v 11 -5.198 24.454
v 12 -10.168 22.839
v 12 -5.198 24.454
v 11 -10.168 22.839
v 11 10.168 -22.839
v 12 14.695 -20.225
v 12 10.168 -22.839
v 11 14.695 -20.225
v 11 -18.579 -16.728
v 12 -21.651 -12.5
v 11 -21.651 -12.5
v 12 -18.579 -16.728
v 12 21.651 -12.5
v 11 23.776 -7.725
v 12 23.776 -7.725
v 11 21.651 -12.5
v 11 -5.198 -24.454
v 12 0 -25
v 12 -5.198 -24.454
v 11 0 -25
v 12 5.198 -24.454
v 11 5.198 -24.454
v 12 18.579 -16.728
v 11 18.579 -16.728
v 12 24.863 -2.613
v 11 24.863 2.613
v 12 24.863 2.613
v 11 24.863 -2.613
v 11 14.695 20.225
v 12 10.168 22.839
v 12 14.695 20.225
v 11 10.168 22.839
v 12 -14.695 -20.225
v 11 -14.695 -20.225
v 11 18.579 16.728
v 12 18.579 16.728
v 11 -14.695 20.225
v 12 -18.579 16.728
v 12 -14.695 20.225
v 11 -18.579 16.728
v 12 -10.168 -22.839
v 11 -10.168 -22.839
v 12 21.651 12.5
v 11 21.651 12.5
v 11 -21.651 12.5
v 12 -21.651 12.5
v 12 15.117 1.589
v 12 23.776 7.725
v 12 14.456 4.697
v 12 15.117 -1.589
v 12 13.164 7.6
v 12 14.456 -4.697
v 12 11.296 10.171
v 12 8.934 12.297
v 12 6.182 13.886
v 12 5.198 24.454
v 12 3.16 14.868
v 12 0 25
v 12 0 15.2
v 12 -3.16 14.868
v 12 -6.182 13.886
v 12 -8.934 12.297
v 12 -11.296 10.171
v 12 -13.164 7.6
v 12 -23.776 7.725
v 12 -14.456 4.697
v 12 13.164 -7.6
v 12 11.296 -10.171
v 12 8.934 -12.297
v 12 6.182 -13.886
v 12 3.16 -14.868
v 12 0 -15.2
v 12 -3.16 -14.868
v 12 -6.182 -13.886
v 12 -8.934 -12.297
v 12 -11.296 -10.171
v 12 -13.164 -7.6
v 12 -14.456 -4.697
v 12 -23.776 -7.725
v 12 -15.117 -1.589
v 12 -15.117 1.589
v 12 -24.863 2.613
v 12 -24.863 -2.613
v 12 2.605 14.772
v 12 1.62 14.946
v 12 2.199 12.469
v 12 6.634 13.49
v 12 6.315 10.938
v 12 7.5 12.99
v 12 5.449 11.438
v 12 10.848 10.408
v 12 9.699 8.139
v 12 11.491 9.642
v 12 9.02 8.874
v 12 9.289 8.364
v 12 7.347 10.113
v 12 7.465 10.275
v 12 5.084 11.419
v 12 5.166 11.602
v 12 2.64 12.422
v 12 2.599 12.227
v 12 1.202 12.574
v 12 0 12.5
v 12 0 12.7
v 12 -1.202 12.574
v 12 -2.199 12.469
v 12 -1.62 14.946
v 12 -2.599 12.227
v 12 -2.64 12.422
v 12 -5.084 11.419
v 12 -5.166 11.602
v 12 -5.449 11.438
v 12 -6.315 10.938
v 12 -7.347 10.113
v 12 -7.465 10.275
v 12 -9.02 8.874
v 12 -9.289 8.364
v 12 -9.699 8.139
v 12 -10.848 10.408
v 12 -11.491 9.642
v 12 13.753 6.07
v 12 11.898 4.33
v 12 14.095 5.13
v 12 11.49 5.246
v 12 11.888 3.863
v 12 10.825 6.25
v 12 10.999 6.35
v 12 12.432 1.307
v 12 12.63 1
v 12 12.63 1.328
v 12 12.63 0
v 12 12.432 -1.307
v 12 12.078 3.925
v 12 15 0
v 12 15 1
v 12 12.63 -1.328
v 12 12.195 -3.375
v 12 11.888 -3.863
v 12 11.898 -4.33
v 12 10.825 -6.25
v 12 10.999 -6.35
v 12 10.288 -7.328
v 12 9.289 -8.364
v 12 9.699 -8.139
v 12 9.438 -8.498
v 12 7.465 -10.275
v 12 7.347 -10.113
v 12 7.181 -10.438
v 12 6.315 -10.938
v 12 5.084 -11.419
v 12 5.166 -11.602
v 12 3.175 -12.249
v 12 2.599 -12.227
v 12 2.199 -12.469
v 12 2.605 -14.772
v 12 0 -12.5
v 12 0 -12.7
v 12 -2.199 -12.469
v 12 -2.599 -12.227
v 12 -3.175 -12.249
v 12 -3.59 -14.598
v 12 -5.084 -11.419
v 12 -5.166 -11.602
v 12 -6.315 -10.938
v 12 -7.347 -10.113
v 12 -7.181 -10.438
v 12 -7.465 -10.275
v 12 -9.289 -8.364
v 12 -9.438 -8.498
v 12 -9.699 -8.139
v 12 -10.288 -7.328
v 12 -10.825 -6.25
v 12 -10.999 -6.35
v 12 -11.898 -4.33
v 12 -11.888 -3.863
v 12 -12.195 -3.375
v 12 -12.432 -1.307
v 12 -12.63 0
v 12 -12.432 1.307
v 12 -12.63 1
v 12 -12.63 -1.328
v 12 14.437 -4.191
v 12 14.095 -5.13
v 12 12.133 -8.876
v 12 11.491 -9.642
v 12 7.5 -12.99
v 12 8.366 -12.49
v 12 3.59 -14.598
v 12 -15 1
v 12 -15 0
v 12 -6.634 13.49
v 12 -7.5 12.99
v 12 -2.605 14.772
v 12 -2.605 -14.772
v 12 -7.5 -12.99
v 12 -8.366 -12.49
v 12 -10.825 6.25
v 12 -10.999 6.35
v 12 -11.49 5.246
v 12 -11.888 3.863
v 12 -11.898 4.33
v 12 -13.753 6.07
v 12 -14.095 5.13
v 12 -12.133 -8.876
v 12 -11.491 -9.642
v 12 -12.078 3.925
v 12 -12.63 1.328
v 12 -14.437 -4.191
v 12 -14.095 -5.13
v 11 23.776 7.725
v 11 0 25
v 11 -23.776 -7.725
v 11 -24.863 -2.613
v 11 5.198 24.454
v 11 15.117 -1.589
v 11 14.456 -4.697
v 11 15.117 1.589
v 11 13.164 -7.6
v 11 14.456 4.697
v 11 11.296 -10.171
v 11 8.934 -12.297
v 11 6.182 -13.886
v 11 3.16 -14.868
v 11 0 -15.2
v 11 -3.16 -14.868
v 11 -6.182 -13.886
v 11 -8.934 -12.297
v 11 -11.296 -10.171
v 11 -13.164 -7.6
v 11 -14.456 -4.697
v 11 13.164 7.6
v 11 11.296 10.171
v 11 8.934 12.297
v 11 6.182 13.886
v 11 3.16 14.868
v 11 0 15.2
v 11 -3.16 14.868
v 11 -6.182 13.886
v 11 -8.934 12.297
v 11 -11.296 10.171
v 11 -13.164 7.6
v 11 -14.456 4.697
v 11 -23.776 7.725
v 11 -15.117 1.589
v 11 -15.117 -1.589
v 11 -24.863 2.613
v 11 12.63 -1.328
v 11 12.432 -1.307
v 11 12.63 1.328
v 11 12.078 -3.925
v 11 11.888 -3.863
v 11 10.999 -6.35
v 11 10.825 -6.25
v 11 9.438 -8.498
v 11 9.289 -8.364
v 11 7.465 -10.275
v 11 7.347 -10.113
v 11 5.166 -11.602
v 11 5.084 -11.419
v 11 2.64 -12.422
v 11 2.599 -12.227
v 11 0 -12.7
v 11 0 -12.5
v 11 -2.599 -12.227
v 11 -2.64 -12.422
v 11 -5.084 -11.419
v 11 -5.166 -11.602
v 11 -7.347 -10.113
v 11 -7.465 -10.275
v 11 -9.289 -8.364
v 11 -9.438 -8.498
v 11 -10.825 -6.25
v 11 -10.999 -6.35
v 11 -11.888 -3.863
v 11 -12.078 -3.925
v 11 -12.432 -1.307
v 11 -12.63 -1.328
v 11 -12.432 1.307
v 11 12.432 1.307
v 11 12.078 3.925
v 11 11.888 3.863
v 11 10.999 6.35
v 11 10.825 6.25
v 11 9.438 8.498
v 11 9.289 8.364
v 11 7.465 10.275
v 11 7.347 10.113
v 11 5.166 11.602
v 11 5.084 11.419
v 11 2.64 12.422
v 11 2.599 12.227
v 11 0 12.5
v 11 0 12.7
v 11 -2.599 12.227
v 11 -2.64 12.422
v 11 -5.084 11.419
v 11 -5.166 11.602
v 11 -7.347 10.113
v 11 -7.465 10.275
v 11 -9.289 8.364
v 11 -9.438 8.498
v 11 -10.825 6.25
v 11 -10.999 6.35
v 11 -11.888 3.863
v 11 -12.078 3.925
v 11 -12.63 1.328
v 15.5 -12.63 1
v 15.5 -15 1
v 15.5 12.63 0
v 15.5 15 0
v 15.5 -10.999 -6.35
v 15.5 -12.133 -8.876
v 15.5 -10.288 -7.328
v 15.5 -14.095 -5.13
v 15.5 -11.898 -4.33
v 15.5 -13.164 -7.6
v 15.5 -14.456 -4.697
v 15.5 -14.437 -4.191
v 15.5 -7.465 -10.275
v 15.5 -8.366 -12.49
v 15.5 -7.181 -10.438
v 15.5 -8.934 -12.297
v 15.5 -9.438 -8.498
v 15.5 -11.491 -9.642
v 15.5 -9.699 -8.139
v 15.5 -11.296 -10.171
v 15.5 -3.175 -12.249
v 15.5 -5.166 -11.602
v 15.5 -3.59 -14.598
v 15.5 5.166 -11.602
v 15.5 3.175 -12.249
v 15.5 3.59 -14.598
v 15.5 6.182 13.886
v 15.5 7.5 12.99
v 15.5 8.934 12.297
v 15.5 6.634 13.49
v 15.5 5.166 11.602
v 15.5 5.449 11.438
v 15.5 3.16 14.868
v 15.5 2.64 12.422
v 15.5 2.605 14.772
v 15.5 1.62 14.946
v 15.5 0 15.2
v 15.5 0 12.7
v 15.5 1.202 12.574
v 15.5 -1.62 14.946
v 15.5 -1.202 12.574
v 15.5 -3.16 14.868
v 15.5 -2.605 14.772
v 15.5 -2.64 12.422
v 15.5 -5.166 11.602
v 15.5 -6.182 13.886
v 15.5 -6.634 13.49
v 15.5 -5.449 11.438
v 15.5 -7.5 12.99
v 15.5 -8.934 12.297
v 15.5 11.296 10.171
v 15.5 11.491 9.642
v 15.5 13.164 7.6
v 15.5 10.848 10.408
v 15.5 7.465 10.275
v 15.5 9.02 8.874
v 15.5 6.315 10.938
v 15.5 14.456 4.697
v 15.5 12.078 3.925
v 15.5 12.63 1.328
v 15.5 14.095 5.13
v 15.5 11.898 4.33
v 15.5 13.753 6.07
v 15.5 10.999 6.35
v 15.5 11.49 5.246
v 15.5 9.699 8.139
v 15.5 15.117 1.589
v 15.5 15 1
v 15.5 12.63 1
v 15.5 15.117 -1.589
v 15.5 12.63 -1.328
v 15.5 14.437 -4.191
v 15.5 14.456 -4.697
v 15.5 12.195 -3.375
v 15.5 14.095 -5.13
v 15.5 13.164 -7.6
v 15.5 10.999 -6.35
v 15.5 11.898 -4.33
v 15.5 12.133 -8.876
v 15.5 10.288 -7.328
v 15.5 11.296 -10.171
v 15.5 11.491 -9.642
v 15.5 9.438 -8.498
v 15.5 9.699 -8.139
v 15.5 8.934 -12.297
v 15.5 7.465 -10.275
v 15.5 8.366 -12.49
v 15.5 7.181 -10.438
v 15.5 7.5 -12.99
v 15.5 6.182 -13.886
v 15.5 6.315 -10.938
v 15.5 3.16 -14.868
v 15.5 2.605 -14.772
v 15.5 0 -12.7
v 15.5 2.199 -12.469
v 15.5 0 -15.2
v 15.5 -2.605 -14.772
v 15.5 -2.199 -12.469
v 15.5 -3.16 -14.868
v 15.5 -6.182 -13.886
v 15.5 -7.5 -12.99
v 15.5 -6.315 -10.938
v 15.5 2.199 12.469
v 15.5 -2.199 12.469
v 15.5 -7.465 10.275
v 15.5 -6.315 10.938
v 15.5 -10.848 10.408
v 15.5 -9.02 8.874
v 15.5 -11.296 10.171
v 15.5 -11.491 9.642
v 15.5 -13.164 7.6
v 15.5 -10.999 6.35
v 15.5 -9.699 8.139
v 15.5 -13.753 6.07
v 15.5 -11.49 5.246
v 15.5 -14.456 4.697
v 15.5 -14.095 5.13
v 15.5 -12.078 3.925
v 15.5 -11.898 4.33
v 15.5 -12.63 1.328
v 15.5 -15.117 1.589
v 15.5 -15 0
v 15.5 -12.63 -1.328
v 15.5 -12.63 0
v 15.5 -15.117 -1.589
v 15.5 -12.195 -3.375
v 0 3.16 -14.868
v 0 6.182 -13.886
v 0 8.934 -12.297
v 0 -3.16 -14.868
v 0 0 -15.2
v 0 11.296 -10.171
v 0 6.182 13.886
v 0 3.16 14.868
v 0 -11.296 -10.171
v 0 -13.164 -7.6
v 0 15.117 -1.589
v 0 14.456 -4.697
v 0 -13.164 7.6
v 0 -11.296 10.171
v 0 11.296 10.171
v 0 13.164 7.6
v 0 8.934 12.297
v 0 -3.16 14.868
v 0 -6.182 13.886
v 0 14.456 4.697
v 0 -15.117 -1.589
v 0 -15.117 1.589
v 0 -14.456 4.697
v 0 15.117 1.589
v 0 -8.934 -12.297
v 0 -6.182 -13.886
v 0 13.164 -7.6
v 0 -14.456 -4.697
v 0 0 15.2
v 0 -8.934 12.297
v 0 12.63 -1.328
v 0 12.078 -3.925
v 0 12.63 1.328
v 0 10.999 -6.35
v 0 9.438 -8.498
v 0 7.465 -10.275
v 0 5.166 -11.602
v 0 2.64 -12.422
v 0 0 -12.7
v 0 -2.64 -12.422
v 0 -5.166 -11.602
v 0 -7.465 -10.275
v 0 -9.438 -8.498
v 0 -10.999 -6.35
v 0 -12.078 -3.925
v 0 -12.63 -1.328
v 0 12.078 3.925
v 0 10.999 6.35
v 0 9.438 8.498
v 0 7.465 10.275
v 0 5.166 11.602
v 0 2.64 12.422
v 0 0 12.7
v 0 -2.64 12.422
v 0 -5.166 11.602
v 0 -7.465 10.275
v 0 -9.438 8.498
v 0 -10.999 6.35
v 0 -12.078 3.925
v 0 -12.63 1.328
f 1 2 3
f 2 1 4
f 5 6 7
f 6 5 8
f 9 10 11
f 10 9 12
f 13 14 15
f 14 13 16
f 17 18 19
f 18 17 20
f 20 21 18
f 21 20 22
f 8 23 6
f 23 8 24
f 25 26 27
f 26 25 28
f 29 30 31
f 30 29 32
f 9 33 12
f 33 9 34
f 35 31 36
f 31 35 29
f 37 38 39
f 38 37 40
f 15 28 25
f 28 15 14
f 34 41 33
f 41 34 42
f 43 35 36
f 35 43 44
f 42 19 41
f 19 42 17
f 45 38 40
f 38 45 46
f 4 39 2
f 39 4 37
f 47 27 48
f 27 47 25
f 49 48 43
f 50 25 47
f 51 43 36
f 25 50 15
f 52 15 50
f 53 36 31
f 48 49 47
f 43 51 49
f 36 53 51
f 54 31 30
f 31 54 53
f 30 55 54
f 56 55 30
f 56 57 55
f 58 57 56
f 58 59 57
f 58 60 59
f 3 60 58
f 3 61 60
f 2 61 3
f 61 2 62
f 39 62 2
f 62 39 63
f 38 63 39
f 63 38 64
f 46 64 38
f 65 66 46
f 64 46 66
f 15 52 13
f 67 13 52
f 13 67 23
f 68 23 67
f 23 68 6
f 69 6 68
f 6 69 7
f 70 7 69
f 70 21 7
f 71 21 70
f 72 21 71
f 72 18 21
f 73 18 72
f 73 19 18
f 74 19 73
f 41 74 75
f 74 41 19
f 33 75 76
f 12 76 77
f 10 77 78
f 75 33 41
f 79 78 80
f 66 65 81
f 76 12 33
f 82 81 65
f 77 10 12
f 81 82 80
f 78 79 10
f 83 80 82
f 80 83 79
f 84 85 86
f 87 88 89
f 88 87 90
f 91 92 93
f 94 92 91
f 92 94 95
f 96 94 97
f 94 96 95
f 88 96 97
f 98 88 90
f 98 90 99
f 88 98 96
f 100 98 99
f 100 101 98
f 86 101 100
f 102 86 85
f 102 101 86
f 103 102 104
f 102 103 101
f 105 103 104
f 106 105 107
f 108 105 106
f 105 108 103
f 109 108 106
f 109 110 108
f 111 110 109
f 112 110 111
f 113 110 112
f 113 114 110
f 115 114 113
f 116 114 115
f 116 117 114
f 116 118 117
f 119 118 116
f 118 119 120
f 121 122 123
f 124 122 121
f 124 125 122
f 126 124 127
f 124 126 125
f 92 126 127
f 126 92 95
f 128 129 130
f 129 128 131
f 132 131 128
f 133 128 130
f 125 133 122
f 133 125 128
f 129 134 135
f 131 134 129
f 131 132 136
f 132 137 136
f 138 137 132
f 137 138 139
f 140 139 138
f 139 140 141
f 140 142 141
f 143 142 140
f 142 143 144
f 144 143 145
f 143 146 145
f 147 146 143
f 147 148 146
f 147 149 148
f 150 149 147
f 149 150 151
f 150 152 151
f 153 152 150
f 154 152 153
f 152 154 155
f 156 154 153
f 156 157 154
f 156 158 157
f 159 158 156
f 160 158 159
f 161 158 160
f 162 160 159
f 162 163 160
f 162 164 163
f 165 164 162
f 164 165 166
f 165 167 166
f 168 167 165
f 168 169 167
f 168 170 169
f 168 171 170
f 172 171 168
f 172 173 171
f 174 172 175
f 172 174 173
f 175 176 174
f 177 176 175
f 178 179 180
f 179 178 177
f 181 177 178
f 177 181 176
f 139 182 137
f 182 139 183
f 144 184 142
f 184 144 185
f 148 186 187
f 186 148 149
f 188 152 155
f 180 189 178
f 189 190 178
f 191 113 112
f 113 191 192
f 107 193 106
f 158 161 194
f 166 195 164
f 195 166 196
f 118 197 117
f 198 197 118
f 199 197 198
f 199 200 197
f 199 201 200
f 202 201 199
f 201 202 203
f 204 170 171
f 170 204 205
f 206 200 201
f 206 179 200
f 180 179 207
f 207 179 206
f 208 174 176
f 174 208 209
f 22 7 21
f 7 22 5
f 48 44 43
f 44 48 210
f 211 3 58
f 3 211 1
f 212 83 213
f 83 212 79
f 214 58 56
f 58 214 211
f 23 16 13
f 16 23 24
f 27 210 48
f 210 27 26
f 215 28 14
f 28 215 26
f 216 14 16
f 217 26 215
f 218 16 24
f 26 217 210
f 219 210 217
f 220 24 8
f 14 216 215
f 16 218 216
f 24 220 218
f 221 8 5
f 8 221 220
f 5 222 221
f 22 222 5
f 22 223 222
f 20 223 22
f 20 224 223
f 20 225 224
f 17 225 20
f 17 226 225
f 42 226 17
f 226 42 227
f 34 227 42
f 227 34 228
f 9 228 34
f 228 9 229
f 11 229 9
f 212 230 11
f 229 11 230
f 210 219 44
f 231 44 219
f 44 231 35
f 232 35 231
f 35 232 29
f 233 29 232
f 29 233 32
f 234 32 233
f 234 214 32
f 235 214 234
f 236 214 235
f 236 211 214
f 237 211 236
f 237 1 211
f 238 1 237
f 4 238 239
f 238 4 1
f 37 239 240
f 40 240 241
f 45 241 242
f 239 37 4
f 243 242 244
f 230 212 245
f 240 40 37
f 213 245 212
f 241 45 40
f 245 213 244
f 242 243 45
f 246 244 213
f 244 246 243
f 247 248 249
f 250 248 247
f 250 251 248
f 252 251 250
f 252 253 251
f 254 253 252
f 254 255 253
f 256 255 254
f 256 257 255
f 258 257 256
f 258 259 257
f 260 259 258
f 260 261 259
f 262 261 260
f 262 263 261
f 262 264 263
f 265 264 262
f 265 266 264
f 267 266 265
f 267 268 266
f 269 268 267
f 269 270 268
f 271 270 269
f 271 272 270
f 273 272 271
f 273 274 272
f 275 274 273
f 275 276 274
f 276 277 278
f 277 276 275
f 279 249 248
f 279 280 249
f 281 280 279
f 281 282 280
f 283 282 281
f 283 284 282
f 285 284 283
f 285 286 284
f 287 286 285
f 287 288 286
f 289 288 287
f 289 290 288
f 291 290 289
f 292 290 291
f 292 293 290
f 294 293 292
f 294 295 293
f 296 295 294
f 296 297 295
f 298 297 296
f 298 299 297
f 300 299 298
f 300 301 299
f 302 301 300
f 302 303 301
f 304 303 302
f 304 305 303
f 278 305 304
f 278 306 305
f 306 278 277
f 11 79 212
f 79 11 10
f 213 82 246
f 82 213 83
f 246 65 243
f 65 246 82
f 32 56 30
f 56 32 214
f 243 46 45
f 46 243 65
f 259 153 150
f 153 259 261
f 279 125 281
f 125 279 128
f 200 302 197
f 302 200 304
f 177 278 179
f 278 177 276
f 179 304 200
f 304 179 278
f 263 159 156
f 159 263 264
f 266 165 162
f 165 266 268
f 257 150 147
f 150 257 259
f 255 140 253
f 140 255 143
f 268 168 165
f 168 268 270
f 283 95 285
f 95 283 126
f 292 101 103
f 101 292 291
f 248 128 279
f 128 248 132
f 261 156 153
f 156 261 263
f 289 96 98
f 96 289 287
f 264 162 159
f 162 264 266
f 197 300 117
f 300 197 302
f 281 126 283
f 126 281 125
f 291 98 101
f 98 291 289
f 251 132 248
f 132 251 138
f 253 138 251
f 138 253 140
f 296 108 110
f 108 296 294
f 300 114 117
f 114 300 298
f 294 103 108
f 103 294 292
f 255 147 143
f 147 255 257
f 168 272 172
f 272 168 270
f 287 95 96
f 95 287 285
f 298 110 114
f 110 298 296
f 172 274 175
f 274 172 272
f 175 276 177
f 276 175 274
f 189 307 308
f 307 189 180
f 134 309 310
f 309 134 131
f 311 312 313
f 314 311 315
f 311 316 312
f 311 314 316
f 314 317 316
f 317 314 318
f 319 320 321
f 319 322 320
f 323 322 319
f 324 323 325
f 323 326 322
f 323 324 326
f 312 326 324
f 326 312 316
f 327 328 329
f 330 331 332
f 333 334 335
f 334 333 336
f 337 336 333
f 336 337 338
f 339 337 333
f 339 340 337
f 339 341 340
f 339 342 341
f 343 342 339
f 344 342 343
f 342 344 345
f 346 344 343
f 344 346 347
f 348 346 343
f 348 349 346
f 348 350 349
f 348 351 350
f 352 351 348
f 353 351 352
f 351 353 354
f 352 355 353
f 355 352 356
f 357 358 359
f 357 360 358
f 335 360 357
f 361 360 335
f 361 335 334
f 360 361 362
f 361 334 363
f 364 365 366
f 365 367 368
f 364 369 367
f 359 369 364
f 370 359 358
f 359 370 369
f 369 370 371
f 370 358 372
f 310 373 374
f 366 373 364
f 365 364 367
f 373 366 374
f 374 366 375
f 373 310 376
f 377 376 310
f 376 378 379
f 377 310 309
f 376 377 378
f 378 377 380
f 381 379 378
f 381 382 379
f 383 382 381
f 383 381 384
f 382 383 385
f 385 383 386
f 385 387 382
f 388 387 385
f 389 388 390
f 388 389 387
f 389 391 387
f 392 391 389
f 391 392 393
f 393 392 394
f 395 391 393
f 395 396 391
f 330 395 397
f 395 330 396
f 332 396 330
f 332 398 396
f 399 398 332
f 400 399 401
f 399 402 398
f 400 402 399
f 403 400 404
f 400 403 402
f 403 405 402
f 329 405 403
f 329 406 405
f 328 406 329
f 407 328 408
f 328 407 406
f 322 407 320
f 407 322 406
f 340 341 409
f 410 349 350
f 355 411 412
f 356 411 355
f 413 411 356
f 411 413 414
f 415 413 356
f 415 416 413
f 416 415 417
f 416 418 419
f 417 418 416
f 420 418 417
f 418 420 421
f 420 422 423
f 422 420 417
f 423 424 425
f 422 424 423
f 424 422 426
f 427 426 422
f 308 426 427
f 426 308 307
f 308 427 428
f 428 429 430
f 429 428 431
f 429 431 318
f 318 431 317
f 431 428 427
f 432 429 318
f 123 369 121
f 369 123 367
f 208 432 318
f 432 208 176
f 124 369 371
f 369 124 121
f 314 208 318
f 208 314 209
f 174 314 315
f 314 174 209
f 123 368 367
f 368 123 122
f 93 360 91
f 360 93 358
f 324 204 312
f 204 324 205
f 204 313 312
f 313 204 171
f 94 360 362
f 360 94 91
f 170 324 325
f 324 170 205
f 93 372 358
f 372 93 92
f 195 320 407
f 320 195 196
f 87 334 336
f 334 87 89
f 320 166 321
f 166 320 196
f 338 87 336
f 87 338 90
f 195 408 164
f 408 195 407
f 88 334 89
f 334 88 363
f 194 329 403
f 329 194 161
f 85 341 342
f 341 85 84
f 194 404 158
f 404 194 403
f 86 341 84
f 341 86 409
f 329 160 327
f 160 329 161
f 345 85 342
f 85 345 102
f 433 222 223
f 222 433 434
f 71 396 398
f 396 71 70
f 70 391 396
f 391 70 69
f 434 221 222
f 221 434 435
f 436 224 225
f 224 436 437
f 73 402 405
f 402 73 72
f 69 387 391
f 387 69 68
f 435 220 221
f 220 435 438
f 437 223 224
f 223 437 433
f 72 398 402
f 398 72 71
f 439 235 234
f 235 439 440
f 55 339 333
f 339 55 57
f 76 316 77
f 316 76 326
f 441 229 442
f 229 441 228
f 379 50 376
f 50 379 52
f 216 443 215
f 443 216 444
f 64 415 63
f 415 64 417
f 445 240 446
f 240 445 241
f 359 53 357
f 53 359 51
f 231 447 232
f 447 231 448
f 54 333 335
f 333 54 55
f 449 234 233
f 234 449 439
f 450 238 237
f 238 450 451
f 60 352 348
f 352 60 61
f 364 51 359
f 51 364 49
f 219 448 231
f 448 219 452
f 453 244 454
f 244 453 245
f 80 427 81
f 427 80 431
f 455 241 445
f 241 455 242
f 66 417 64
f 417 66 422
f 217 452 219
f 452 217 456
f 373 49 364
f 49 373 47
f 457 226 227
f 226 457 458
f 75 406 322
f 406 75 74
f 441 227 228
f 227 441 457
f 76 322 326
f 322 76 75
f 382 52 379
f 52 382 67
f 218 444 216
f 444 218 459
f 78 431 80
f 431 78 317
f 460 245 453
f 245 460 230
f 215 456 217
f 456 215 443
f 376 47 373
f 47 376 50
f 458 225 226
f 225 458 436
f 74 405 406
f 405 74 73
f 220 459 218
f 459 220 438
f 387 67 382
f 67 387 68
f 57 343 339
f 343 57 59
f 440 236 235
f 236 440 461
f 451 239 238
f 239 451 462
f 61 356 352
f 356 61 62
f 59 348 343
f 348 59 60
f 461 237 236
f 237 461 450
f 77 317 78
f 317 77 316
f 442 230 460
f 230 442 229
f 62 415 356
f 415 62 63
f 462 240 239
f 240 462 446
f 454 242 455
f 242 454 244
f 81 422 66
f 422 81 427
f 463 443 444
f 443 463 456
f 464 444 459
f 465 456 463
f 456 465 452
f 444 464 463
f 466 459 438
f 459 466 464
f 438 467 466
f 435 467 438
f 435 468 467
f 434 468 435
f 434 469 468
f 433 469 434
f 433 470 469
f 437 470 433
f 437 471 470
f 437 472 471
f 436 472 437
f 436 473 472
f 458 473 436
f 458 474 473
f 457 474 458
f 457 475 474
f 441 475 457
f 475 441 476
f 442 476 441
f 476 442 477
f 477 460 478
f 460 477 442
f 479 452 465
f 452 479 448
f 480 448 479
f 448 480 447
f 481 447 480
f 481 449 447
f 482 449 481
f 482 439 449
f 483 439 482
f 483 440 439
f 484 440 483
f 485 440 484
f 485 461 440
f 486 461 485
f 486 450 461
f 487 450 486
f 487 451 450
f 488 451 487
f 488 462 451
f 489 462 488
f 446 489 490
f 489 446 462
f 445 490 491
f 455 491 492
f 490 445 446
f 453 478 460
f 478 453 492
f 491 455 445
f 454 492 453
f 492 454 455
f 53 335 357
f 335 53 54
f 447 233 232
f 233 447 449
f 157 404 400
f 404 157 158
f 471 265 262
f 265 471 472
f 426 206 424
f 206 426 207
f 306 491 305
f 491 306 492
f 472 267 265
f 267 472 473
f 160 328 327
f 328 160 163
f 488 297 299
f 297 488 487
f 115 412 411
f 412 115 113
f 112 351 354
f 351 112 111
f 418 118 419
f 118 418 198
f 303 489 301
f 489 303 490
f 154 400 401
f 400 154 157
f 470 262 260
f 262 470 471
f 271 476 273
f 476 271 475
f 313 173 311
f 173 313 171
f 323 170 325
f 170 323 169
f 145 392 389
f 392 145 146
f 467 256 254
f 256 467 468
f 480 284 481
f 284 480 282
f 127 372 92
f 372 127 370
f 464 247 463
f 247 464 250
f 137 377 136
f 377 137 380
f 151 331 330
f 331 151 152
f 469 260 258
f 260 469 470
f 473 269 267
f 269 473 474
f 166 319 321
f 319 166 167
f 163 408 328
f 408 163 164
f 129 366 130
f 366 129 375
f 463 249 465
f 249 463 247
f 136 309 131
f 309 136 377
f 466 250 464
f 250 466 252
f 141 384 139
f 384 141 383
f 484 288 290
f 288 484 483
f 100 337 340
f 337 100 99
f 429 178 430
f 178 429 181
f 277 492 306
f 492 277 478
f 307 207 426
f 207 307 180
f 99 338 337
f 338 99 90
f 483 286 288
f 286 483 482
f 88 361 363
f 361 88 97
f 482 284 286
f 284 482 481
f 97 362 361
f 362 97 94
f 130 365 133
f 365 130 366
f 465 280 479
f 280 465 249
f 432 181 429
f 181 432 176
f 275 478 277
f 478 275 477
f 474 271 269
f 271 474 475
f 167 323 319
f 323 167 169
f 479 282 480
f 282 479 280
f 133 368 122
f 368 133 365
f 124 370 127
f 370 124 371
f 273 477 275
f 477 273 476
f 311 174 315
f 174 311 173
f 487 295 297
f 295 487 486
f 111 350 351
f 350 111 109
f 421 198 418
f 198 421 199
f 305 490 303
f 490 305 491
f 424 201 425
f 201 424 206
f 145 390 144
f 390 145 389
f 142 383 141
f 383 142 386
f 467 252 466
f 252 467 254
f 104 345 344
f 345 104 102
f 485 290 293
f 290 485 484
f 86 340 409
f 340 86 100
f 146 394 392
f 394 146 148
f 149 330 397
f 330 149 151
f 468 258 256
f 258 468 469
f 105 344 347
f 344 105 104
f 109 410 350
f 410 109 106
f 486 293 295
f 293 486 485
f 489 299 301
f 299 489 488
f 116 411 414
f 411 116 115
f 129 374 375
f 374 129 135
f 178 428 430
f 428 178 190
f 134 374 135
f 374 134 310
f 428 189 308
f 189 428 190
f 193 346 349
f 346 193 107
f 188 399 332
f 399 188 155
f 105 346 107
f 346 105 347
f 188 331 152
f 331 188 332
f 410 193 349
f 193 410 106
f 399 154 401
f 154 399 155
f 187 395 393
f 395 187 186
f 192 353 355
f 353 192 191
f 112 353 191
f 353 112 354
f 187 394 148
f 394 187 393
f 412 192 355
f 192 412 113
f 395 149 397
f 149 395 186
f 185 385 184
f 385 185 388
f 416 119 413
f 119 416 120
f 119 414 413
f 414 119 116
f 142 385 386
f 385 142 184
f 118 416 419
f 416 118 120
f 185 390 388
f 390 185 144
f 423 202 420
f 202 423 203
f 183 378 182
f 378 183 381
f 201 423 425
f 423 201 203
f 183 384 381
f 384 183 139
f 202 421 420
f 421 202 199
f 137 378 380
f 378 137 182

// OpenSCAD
/*difference(){
rotate([0,90,0]) cylinder(h=1, r1=25,r2=25);
    rotate([0,90,0]) #cylinder(h=14.5, r1=12.5,r2=12.5);
}*/
difference(){
rotate([0,90,0]) translate([0,0,11])cylinder(h=1, r1=25,r2=25);
    rotate([0,90,0]) #cylinder(h=15.5, r1=12.5,r2=12.5);
}
difference(){
rotate([0,90,0]) cylinder(h=15.5, r1=15.2,r2=15.2);
    rotate([0,90,0]) #cylinder(h=15.5, r1=12.7,r2=12.7);
    #translate([12,-15,0]) cube([3.5,30,1]);
rotate(a=[10,0,0])#translate([12,0,-15]) cube([3.5,1,30]);
    rotate(a=[30,0,0])#translate([12,0,-15]) cube([3.5,1,30]);
    rotate(a=[50,0,0])#translate([12,0,-15]) cube([3.5,1,30]);
    rotate(a=[70,0,0])#translate([12,0,-15]) cube([3.5,1,30]);
    rotate(a=[90,0,0])#translate([12,0,-15]) cube([3.5,1,30]);
  rotate(a=[80,0,0]){
      rotate(a=[10,0,0])#translate([12,0,-15]) cube([3.5,1,30]);
    rotate(a=[30,0,0])#translate([12,0,-15]) cube([3.5,1,30]);
    rotate(a=[50,0,0])#translate([12,0,-15]) cube([3.5,1,30]);
    rotate(a=[70,0,0])#translate([12,0,-15]) cube([3.5,1,30]);
    rotate(a=[90,0,0])#translate([12,0,-15]) cube([3.5,1,30]);
  }
}
